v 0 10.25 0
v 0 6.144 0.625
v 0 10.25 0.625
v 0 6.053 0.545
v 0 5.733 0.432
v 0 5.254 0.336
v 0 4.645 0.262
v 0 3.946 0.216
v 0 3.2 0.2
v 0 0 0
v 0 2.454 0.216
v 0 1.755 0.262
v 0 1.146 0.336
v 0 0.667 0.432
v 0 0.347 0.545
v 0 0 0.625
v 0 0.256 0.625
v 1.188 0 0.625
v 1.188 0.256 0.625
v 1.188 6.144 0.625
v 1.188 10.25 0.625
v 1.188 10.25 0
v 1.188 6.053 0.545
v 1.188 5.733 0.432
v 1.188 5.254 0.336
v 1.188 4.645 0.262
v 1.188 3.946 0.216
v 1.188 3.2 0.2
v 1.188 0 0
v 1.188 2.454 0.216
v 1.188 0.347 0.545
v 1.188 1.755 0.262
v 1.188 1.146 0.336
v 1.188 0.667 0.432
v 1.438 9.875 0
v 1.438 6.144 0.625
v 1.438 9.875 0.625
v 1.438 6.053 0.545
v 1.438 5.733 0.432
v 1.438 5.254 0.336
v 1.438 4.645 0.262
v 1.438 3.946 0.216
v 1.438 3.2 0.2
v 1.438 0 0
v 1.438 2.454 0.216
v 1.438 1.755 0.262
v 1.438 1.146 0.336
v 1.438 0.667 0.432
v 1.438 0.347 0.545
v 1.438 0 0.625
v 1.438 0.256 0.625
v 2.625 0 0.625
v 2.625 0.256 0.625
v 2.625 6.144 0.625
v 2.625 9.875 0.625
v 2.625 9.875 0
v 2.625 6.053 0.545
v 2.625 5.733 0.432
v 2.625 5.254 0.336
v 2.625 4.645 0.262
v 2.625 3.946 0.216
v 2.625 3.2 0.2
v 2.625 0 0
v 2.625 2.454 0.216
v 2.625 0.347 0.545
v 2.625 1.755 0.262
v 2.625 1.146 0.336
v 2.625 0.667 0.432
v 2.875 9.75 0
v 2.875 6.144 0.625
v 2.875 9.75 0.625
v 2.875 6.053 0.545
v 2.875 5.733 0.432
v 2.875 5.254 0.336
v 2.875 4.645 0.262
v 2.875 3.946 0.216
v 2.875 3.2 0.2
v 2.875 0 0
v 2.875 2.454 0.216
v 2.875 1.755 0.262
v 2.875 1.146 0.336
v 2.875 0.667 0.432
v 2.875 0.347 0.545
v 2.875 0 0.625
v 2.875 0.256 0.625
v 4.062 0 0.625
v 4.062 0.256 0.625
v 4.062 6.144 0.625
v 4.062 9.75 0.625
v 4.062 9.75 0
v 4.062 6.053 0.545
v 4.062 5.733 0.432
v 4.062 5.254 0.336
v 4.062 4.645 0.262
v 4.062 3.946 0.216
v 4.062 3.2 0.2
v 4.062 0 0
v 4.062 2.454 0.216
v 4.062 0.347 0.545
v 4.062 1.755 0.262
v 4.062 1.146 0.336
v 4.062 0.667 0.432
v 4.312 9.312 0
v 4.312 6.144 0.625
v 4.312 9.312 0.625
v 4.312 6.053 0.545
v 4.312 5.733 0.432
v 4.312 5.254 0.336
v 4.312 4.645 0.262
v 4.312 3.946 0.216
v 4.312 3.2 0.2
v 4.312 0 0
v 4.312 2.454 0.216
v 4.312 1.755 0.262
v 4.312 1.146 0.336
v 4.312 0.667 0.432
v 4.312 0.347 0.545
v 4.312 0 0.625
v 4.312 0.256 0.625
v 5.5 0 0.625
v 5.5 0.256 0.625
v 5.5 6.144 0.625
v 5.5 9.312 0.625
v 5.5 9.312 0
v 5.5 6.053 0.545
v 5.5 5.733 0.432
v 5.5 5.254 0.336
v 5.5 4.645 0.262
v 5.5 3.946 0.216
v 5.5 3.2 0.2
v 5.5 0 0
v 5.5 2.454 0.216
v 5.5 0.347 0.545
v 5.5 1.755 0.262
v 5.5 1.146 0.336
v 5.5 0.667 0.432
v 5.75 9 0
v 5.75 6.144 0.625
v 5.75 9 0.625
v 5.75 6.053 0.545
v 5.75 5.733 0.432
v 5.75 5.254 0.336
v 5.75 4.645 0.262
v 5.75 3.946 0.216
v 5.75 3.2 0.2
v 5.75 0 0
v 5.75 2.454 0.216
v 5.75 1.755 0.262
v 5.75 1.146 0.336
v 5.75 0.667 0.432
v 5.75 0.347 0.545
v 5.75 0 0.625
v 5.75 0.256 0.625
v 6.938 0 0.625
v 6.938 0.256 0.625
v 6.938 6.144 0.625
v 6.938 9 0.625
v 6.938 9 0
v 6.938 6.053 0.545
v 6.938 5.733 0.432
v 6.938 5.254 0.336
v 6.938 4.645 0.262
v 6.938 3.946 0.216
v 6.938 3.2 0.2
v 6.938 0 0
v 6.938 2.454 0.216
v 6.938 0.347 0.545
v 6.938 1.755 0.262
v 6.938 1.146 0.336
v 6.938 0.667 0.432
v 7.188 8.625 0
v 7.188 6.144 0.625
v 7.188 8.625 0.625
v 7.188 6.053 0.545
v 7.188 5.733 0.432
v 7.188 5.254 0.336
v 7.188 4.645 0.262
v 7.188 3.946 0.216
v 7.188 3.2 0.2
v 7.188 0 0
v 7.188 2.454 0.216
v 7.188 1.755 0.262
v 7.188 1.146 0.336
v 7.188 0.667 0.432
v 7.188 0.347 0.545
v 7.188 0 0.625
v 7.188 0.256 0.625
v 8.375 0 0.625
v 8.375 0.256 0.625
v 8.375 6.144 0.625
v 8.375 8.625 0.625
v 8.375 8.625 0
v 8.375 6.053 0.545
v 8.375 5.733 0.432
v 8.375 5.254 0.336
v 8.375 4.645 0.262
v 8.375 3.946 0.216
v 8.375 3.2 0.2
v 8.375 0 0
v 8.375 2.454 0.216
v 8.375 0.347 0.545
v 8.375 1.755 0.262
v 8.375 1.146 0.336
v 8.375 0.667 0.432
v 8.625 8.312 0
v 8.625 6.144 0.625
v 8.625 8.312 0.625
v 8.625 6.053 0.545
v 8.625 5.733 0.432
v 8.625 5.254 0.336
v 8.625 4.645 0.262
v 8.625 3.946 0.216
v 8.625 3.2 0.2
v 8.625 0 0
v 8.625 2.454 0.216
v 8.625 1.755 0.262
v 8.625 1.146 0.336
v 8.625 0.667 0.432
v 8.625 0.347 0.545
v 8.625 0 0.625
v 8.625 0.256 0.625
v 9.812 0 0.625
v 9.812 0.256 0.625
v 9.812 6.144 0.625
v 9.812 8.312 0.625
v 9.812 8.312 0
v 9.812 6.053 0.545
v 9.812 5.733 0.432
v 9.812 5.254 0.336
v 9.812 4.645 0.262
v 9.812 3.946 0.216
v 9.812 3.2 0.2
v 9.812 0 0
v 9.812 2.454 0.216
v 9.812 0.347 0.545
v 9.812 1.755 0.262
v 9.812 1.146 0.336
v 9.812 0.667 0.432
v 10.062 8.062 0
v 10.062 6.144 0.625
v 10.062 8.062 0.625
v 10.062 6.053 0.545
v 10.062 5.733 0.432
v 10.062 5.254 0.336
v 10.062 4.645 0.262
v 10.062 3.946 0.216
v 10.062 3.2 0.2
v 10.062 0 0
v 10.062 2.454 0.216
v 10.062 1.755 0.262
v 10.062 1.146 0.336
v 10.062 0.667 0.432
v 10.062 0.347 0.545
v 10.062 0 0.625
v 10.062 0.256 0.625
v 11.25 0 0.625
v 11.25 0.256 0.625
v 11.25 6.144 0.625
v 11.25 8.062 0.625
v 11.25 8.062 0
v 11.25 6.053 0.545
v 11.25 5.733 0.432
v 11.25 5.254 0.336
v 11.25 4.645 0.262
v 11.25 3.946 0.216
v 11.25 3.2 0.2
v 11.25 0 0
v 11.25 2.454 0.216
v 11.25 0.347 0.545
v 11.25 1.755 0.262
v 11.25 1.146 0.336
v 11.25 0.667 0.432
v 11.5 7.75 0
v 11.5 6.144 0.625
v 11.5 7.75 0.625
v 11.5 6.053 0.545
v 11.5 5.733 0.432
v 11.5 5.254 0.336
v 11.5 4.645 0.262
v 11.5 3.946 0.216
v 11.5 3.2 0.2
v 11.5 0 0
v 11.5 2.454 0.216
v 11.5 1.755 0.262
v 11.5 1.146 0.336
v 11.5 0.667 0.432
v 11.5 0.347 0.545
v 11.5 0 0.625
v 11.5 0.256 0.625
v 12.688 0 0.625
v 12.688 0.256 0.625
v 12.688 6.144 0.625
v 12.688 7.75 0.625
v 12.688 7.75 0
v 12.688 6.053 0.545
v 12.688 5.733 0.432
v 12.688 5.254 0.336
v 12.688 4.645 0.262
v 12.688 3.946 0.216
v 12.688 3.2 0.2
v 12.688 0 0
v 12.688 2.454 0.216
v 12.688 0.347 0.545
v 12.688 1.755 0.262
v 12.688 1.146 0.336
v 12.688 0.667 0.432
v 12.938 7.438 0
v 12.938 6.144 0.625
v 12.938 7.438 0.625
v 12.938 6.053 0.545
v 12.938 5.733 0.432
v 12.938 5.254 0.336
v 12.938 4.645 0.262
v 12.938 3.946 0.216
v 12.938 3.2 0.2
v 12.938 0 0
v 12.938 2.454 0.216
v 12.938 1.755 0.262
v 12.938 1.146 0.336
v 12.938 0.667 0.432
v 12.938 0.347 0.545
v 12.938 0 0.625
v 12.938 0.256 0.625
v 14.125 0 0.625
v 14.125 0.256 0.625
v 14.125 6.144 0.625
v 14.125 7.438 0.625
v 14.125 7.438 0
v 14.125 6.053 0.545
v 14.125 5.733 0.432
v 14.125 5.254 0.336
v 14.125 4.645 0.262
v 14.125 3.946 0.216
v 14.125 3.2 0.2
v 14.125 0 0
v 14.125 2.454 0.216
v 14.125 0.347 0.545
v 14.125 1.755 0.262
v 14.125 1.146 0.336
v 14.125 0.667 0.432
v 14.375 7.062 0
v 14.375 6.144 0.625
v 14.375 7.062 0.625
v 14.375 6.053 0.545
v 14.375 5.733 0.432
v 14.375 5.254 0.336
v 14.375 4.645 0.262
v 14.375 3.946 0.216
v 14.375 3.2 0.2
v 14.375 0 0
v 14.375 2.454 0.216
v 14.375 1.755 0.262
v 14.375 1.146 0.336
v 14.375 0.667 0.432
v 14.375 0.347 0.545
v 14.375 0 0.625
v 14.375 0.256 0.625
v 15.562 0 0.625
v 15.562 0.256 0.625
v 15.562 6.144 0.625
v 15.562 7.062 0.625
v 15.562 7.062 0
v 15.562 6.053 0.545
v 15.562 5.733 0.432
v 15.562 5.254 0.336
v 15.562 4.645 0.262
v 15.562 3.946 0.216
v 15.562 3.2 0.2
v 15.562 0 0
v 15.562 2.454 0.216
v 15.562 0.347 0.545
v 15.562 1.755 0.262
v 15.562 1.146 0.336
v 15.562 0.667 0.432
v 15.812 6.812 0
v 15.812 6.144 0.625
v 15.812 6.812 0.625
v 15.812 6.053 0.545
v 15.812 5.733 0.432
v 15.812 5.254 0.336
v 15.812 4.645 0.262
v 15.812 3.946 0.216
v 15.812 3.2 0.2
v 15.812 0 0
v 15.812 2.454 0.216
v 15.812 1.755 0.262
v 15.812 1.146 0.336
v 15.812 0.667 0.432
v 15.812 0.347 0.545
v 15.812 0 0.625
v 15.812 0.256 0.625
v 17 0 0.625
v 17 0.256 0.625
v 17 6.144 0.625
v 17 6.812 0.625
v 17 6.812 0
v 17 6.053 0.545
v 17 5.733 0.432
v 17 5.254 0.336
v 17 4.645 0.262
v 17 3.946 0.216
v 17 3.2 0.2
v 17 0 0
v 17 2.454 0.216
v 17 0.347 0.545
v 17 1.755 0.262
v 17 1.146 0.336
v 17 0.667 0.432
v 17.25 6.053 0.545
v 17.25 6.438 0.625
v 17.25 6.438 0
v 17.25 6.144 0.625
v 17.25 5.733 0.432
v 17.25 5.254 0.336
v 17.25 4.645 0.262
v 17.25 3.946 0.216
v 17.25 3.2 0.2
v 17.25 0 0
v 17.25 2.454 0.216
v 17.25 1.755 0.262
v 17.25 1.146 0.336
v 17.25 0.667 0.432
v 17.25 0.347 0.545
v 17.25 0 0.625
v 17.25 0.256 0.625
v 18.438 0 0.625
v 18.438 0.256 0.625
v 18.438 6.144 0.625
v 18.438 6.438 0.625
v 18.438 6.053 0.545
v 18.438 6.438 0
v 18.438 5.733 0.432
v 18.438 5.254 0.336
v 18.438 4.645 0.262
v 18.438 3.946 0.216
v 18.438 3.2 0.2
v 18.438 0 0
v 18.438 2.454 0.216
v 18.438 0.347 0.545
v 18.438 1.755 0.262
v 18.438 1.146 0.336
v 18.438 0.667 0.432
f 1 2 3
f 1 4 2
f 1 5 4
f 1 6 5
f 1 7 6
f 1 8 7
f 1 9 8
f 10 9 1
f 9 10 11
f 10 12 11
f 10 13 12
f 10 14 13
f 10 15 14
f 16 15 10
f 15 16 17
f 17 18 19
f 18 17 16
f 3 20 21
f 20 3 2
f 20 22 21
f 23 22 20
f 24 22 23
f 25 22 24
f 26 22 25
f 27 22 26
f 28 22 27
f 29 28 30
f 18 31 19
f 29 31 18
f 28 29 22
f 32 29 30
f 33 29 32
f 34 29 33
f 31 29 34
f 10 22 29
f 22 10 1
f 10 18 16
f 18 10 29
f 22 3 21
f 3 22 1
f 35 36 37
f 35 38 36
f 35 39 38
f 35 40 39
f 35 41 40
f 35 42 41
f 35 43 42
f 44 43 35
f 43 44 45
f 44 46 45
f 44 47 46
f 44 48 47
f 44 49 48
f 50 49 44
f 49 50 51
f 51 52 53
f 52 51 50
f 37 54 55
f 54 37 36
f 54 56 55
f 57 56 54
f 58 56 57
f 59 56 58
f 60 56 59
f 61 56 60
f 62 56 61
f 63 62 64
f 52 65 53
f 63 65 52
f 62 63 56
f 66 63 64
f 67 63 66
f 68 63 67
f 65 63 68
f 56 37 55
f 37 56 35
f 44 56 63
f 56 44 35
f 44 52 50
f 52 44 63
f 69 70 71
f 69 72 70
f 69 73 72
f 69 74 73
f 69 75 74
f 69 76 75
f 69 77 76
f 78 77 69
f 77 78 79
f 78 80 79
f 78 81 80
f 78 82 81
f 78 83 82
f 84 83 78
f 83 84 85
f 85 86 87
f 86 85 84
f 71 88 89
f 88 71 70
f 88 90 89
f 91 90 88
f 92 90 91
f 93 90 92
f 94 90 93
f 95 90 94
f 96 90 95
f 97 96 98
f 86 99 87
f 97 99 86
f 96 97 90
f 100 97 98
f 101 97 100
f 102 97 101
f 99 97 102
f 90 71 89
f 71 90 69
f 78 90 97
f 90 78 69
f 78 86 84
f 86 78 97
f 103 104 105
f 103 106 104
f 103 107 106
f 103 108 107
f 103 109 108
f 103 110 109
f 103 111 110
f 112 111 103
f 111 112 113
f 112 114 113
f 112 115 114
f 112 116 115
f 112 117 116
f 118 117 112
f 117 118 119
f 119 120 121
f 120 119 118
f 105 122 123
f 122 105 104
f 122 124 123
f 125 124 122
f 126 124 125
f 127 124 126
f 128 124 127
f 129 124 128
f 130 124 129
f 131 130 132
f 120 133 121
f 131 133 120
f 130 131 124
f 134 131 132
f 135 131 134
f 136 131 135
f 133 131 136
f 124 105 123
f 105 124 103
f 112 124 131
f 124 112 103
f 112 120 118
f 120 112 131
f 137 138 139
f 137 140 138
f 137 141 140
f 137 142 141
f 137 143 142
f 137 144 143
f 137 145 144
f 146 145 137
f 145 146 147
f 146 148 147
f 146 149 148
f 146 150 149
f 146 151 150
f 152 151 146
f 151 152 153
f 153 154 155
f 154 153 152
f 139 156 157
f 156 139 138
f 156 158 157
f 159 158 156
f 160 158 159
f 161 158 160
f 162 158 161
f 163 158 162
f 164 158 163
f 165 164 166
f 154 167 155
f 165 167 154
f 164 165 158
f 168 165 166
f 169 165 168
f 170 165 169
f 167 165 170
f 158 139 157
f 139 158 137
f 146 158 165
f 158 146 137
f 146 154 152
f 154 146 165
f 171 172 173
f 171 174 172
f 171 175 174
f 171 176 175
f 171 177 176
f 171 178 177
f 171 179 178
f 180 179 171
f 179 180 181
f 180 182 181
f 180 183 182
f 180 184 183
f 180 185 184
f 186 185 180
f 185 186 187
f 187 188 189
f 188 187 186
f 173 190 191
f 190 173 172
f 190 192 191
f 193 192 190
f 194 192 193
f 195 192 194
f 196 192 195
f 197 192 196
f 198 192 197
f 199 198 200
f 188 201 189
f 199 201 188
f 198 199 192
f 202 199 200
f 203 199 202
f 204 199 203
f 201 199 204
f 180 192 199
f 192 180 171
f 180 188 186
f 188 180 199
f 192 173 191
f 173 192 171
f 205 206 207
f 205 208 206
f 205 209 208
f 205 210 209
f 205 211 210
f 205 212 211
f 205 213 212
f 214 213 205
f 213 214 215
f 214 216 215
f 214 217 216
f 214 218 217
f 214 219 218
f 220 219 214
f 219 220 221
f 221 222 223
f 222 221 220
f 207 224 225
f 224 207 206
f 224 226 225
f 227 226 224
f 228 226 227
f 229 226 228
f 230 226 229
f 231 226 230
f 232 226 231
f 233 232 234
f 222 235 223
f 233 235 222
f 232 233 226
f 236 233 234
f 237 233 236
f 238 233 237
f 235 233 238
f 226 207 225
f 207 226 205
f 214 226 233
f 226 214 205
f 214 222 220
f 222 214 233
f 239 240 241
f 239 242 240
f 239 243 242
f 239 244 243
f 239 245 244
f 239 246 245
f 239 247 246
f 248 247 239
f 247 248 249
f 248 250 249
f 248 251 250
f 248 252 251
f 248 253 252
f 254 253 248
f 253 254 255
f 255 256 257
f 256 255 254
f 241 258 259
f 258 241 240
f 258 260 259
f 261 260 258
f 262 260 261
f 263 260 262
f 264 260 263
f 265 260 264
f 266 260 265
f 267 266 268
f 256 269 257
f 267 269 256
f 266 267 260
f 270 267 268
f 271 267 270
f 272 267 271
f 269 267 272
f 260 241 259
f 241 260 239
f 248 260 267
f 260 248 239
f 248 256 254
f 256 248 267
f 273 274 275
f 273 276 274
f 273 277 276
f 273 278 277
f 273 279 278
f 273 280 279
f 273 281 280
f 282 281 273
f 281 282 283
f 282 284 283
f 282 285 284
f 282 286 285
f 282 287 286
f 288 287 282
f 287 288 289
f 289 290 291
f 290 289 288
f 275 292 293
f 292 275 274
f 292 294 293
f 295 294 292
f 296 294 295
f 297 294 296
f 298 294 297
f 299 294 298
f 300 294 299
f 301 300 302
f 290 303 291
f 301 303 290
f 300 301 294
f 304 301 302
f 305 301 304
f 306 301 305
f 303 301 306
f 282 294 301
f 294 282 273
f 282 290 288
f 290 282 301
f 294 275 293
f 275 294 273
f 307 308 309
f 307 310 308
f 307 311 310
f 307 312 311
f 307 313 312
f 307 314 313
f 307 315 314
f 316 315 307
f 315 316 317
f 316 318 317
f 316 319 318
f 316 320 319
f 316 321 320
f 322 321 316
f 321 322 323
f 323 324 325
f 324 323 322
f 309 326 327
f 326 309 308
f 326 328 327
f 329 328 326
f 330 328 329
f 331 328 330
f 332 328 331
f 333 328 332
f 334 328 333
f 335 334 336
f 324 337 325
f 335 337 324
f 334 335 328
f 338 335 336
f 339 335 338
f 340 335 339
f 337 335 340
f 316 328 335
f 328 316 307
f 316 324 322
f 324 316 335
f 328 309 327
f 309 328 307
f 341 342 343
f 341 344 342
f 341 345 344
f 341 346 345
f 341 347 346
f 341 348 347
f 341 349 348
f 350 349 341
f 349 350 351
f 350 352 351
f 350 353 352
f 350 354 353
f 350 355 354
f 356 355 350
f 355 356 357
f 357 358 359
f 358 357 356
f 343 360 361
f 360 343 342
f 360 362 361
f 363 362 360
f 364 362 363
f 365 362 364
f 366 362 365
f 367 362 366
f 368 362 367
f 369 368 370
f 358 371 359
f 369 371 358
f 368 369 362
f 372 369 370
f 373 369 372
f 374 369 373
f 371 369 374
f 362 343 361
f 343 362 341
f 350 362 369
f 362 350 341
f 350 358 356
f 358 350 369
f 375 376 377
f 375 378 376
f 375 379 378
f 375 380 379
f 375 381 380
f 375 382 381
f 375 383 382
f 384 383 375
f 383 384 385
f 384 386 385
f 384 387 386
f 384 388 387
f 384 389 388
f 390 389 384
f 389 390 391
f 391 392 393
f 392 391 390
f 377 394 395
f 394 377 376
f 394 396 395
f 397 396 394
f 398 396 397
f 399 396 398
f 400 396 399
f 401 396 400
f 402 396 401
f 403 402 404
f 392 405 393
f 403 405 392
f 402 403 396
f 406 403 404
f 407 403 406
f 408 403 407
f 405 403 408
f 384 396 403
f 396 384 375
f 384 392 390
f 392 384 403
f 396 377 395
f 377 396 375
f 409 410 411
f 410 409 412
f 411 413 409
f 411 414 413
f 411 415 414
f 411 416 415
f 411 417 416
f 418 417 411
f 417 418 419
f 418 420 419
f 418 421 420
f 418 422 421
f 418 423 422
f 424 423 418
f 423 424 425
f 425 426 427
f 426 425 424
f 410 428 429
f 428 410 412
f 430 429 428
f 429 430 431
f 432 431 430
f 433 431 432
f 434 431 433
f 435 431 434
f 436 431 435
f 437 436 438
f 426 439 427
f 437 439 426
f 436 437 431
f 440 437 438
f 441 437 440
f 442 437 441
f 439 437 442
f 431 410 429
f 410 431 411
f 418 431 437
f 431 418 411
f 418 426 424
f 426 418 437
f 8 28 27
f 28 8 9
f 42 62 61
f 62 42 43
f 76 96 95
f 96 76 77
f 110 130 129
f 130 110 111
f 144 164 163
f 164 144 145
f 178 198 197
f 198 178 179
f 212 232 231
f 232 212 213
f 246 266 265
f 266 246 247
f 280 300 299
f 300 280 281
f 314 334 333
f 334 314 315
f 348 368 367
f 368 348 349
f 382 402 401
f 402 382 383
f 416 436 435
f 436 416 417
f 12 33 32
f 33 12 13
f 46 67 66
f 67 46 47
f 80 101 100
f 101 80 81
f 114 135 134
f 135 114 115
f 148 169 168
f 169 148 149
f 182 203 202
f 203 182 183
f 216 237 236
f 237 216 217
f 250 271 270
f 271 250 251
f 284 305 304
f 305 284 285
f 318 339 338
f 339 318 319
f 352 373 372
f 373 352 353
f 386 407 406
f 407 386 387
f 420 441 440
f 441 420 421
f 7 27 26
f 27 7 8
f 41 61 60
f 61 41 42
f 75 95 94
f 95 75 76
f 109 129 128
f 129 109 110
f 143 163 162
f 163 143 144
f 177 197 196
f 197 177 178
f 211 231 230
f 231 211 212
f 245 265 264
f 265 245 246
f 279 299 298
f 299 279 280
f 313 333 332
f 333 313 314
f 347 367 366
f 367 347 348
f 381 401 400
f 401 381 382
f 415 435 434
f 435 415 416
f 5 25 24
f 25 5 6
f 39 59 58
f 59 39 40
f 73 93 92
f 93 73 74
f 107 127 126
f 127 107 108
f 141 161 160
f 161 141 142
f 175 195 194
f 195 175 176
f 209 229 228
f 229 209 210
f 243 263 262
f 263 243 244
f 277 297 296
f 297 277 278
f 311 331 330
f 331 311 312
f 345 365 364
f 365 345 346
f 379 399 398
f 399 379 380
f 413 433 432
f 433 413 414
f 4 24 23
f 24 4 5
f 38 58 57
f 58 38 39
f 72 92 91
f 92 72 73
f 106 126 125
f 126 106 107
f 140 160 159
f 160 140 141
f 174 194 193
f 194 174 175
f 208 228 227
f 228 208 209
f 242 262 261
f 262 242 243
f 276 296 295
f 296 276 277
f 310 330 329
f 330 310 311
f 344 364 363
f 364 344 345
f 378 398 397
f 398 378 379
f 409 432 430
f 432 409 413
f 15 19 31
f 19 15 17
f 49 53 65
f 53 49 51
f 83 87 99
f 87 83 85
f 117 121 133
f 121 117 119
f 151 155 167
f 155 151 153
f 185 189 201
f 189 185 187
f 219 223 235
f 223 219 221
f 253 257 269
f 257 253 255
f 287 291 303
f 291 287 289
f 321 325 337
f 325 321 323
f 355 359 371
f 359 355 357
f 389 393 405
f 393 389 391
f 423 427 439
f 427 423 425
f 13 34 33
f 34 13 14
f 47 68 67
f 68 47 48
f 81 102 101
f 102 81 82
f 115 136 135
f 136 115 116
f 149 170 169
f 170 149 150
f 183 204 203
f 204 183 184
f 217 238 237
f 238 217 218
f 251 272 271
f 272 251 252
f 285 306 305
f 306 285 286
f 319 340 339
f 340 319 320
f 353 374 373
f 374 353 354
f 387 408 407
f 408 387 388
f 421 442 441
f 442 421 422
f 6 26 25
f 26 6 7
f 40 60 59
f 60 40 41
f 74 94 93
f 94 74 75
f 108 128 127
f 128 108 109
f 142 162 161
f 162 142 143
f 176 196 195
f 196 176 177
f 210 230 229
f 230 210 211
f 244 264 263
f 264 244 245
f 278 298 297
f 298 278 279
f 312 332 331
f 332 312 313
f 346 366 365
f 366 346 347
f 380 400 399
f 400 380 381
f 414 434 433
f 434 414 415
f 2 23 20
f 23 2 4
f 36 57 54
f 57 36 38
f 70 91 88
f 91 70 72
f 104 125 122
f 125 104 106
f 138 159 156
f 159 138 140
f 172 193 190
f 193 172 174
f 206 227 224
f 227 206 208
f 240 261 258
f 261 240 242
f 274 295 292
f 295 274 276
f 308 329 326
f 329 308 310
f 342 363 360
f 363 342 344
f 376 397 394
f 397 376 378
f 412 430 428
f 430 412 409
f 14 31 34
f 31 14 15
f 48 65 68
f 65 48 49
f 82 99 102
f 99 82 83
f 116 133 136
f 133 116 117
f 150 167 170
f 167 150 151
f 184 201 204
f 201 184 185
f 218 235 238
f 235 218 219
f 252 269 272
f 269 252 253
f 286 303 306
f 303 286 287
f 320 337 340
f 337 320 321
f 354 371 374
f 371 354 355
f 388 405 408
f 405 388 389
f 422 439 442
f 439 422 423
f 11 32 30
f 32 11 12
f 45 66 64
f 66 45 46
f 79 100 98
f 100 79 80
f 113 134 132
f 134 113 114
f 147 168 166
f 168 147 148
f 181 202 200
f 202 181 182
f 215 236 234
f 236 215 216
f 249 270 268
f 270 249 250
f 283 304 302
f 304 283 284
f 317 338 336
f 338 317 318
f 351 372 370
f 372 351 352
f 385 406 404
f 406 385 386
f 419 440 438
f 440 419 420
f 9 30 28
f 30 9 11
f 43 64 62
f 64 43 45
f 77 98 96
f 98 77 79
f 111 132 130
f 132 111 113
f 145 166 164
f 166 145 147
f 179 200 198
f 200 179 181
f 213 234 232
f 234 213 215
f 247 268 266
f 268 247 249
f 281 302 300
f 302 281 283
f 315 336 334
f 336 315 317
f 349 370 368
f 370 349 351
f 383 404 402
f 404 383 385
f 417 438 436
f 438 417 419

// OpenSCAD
// Generated by SolidPython 1.1.1 on 2021-10-28 01:03:01
$fn = 25;


difference() {
	union() {
		translate(v = [0, 0, 0]) {
			cube(size = [1.1875000000, 10.2500000000, 0.6250000000]);
		}
		translate(v = [1.4375000000, 0, 0]) {
			cube(size = [1.1875000000, 9.8750000000, 0.6250000000]);
		}
		translate(v = [2.8750000000, 0, 0]) {
			cube(size = [1.1875000000, 9.7500000000, 0.6250000000]);
		}
		translate(v = [4.3125000000, 0, 0]) {
			cube(size = [1.1875000000, 9.3125000000, 0.6250000000]);
		}
		translate(v = [5.7500000000, 0, 0]) {
			cube(size = [1.1875000000, 9, 0.6250000000]);
		}
		translate(v = [7.1875000000, 0, 0]) {
			cube(size = [1.1875000000, 8.6250000000, 0.6250000000]);
		}
		translate(v = [8.6250000000, 0, 0]) {
			cube(size = [1.1875000000, 8.3125000000, 0.6250000000]);
		}
		translate(v = [10.0625000000, 0, 0]) {
			cube(size = [1.1875000000, 8.0625000000, 0.6250000000]);
		}
		translate(v = [11.5000000000, 0, 0]) {
			cube(size = [1.1875000000, 7.7500000000, 0.6250000000]);
		}
		translate(v = [12.9375000000, 0, 0]) {
			cube(size = [1.1875000000, 7.4375000000, 0.6250000000]);
		}
		translate(v = [14.3750000000, 0, 0]) {
			cube(size = [1.1875000000, 7.0625000000, 0.6250000000]);
		}
		translate(v = [15.8125000000, 0, 0]) {
			cube(size = [1.1875000000, 6.8125000000, 0.6250000000]);
		}
		translate(v = [17.2500000000, 0, 0]) {
			cube(size = [1.1875000000, 6.4375000000, 0.6250000000]);
		}
	}
	color(alpha = 1.0000000000, c = [1, 0, 0]) {
		translate(v = [-1, 3.2000000000, 0.7000000000]) {
			rotate(a = [0, 90, 0]) {
				scale(v = [0.5000000000, 3, 20]) {
					cylinder();
				}
			}
		}
	}
}
/***********************************************
*********      SolidPython code:      **********
************************************************
 
# SolidPython example code 
# Brygg Ullmer, Clemson University
# Written 2021-10-28

from       solid import * # load in SolidPython/SCAD support code
from synthShapes import *
import yaml

yfn = 'xylophone.yaml'
yf  = open(yfn, 'r')
yd  = yaml.safe_load(yf)

barWidth   = convertFractional(yd['allBars']['wide'])
barThick   = convertFractional(yd['allBars']['thick'])
between    = convertFractional(yd['allBars']['between'])
barLengths = convertFractionalList(yd['lengths'])

#print(barWidth, barThick, barLengths)

outGeom = None; offset = 0
for barLength in barLengths:
  c1 = cube([barWidth, barLength, barThick])
  c2 = translate([offset,0,0])(c1)

  if outGeom == None: outGeom = c2
  else:               outGeom += c2
  offset += barWidth + between

y1 = cylinder()
y2 = scale([.5,3,20])(y1)
y3 = rotate([0,90,0])(y2)
y4 = translate([-1,3.2,.7])(y3)
y5 = color([1,0,0])(y4)
outGeom -= y5

radialSegments = 25; hdr = '$fn = %s;' % radialSegments # create a header for the export
scad_render_to_file(outGeom, 'exXyl03.scad', file_header=hdr) # write the .scad file

### end ###

 
 
************************************************/
